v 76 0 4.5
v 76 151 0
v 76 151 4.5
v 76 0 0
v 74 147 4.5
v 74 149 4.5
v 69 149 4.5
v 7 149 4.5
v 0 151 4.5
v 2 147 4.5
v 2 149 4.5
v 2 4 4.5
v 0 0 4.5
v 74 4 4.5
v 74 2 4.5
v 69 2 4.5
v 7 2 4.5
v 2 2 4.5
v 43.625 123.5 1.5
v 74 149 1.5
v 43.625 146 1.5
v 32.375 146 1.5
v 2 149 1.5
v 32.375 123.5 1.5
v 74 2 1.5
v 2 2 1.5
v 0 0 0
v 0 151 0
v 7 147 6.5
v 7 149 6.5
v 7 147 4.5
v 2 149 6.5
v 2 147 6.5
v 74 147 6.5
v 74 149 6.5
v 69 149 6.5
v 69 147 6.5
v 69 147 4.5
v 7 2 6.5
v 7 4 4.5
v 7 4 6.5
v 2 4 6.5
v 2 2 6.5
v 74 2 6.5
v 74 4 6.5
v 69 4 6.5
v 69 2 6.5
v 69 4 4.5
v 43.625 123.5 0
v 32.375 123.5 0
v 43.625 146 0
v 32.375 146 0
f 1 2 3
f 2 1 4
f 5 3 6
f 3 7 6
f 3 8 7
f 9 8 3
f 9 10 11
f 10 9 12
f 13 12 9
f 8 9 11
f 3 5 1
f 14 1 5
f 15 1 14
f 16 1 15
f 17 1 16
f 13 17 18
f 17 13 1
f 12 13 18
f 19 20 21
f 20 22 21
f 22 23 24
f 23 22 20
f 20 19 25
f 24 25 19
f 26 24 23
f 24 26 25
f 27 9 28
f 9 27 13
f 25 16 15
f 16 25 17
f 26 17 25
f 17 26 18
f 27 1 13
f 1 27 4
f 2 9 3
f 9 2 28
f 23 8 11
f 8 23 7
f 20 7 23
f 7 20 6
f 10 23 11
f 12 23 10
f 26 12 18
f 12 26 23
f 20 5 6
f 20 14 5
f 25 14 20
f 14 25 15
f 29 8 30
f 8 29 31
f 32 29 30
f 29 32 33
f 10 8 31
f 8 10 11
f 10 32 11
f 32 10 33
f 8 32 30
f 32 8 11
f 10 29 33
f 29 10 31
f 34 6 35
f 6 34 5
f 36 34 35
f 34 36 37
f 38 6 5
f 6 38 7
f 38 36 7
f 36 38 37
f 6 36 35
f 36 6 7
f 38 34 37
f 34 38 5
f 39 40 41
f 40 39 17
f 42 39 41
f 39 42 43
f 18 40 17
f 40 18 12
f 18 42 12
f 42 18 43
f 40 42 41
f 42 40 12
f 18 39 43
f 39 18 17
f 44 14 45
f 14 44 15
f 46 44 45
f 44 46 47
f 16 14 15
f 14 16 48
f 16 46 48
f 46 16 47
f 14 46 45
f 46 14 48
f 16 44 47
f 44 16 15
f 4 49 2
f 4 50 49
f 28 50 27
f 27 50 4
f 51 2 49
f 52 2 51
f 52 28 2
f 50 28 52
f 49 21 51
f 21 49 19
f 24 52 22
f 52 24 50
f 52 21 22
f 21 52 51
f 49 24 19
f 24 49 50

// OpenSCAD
// TAMPA PARA TELEMÓVEL COM ENCAIXE
// Variáveis personalizáveis

// Dimensões do telemóvel (com folga de 0.5mm)
comprimento_tele = 75;    // Comprimento do telemóvel
altura_tele = 150;        // Altura do telemóvel  
profundidade_tele = 10;   // Profundidade/espessura do telemóvel
folga = 0.5;              // Folga para encaixe

// Parâmetros da tampa
espessura_fundo = 1.5;    // Espessura do fundo
altura_borda = 3;         // Altura das bordas laterais
espessura_borda = 2;      // Espessura das bordas

// Buraco da câmera
percentual_camera = 0.15; // 15% das dimensões

// Trinco de encaixe
largura_trinco = 5;       // Largura do trinco
altura_trinco = 2;        // Altura do trinco
profundidade_trinco = 2;  // Profundidade do trinco

// ========== CÁLCULOS AUTOMÁTICOS ==========
comprimento_com_folga = comprimento_tele + 2*folga;
altura_com_folga = altura_tele + 2*folga;
profundidade_com_folga = profundidade_tele + folga;

// Dimensões do buraco da câmera
largura_camera = comprimento_tele * percentual_camera;
altura_camera = altura_tele * percentual_camera;

// ========== MÓDULOS PRINCIPAIS ==========

// Fundo da tampa
module fundo() {
    color("Yellow")
    cube([comprimento_com_folga, altura_com_folga, espessura_fundo]);
}

// Bordas laterais
module bordas() {
    color("Yellow")
    // Borda inferior
    translate([0, 0, espessura_fundo])
    cube([comprimento_com_folga, espessura_borda, altura_borda]);
    color("Yellow")
    // Borda superior
    translate([0, altura_com_folga - espessura_borda, espessura_fundo])
    cube([comprimento_com_folga, espessura_borda, altura_borda]);
    color("Yellow")
    // Borda esquerda
    translate([0, 0, espessura_fundo])
    cube([espessura_borda, altura_com_folga, altura_borda]);
    color("Yellow")
    // Borda direita
    translate([comprimento_com_folga - espessura_borda, 0, espessura_fundo])
    cube([espessura_borda, altura_com_folga, altura_borda]);
}

// Buraco para câmera (centralizado no topo)
module buraco_camera() {
    translate([
        comprimento_com_folga/2 - largura_camera/2,
        altura_com_folga - altura_camera - 5,  // 5mm da borda superior
        -1
    ])
    cube([largura_camera, altura_camera, espessura_fundo + 2]);
}

// Trincos de encaixe
module trincos() {
    color("Yellow")
    // Trinco esquerdo (superior)
    translate([
        espessura_borda,
        altura_com_folga - espessura_borda - profundidade_trinco,
        espessura_fundo + altura_borda
    ])
    cube([largura_trinco, profundidade_trinco, altura_trinco]);
    color("Yellow")
    // Trinco direito (superior)
    translate([
        comprimento_com_folga - espessura_borda - largura_trinco,
        altura_com_folga - espessura_borda - profundidade_trinco,
        espessura_fundo + altura_borda
    ])
    cube([largura_trinco, profundidade_trinco, altura_trinco]);
    color("Yellow")
    // Trincos inferiores (opcionais - para melhor fixação)
    // Trinco esquerdo (inferior)
    translate([
        espessura_borda,
        espessura_borda,
        espessura_fundo + altura_borda
    ])
    cube([largura_trinco, profundidade_trinco, altura_trinco]);
    color("Yellow")
    // Trinco direito (inferior)
    translate([
        comprimento_com_folga - espessura_borda - largura_trinco,
        espessura_borda,
        espessura_fundo + altura_borda
    ])
    cube([largura_trinco, profundidade_trinco, altura_trinco]);
}

// ========== MODELO FINAL ==========
difference() {
    union() {
        fundo();
        bordas();
        trincos();
    }
    buraco_camera();
}

// ========== VISUALIZAÇÃO DO TELEMÓVEL ==========
// (apenas para referência - remova o % para ver)
%translate([folga, folga, espessura_fundo + altura_borda])
color("Yellow", 0.3)
cube([comprimento_tele, altura_tele, profundidade_tele]);

// ========== LEGENDA EXPLICATIVA ==========
echo("=== ESPECIFICAÇÕES DA TAMPA ===");
echo(str("Dimensões externas: ", comprimento_com_folga, "mm x ", altura_com_folga, "mm"));
echo(str("Área da câmera: ", largura_camera, "mm x ", altura_camera, "mm"));
echo(str("Número de trincos: 4 (2 superiores + 2 inferiores)"));
echo(str("Folga aplicada: ", folga, "mm em todas as dimensões"));

/*
INSTRUÇÕES DE USO:
1. Ajuste as variáveis no início conforme seu telemóvel
2. Renderize (F6) e exporte como STL
3. Imprima com o fundo na cama de impressão

PERSONALIZAÇÕES:
- Aumente 'folga' para um encaixe mais frouxo
- Ajuste 'percentual_camera' para o tamanho da sua câmera
- Modifique 'altura_borda' para maior proteção lateral
*/
